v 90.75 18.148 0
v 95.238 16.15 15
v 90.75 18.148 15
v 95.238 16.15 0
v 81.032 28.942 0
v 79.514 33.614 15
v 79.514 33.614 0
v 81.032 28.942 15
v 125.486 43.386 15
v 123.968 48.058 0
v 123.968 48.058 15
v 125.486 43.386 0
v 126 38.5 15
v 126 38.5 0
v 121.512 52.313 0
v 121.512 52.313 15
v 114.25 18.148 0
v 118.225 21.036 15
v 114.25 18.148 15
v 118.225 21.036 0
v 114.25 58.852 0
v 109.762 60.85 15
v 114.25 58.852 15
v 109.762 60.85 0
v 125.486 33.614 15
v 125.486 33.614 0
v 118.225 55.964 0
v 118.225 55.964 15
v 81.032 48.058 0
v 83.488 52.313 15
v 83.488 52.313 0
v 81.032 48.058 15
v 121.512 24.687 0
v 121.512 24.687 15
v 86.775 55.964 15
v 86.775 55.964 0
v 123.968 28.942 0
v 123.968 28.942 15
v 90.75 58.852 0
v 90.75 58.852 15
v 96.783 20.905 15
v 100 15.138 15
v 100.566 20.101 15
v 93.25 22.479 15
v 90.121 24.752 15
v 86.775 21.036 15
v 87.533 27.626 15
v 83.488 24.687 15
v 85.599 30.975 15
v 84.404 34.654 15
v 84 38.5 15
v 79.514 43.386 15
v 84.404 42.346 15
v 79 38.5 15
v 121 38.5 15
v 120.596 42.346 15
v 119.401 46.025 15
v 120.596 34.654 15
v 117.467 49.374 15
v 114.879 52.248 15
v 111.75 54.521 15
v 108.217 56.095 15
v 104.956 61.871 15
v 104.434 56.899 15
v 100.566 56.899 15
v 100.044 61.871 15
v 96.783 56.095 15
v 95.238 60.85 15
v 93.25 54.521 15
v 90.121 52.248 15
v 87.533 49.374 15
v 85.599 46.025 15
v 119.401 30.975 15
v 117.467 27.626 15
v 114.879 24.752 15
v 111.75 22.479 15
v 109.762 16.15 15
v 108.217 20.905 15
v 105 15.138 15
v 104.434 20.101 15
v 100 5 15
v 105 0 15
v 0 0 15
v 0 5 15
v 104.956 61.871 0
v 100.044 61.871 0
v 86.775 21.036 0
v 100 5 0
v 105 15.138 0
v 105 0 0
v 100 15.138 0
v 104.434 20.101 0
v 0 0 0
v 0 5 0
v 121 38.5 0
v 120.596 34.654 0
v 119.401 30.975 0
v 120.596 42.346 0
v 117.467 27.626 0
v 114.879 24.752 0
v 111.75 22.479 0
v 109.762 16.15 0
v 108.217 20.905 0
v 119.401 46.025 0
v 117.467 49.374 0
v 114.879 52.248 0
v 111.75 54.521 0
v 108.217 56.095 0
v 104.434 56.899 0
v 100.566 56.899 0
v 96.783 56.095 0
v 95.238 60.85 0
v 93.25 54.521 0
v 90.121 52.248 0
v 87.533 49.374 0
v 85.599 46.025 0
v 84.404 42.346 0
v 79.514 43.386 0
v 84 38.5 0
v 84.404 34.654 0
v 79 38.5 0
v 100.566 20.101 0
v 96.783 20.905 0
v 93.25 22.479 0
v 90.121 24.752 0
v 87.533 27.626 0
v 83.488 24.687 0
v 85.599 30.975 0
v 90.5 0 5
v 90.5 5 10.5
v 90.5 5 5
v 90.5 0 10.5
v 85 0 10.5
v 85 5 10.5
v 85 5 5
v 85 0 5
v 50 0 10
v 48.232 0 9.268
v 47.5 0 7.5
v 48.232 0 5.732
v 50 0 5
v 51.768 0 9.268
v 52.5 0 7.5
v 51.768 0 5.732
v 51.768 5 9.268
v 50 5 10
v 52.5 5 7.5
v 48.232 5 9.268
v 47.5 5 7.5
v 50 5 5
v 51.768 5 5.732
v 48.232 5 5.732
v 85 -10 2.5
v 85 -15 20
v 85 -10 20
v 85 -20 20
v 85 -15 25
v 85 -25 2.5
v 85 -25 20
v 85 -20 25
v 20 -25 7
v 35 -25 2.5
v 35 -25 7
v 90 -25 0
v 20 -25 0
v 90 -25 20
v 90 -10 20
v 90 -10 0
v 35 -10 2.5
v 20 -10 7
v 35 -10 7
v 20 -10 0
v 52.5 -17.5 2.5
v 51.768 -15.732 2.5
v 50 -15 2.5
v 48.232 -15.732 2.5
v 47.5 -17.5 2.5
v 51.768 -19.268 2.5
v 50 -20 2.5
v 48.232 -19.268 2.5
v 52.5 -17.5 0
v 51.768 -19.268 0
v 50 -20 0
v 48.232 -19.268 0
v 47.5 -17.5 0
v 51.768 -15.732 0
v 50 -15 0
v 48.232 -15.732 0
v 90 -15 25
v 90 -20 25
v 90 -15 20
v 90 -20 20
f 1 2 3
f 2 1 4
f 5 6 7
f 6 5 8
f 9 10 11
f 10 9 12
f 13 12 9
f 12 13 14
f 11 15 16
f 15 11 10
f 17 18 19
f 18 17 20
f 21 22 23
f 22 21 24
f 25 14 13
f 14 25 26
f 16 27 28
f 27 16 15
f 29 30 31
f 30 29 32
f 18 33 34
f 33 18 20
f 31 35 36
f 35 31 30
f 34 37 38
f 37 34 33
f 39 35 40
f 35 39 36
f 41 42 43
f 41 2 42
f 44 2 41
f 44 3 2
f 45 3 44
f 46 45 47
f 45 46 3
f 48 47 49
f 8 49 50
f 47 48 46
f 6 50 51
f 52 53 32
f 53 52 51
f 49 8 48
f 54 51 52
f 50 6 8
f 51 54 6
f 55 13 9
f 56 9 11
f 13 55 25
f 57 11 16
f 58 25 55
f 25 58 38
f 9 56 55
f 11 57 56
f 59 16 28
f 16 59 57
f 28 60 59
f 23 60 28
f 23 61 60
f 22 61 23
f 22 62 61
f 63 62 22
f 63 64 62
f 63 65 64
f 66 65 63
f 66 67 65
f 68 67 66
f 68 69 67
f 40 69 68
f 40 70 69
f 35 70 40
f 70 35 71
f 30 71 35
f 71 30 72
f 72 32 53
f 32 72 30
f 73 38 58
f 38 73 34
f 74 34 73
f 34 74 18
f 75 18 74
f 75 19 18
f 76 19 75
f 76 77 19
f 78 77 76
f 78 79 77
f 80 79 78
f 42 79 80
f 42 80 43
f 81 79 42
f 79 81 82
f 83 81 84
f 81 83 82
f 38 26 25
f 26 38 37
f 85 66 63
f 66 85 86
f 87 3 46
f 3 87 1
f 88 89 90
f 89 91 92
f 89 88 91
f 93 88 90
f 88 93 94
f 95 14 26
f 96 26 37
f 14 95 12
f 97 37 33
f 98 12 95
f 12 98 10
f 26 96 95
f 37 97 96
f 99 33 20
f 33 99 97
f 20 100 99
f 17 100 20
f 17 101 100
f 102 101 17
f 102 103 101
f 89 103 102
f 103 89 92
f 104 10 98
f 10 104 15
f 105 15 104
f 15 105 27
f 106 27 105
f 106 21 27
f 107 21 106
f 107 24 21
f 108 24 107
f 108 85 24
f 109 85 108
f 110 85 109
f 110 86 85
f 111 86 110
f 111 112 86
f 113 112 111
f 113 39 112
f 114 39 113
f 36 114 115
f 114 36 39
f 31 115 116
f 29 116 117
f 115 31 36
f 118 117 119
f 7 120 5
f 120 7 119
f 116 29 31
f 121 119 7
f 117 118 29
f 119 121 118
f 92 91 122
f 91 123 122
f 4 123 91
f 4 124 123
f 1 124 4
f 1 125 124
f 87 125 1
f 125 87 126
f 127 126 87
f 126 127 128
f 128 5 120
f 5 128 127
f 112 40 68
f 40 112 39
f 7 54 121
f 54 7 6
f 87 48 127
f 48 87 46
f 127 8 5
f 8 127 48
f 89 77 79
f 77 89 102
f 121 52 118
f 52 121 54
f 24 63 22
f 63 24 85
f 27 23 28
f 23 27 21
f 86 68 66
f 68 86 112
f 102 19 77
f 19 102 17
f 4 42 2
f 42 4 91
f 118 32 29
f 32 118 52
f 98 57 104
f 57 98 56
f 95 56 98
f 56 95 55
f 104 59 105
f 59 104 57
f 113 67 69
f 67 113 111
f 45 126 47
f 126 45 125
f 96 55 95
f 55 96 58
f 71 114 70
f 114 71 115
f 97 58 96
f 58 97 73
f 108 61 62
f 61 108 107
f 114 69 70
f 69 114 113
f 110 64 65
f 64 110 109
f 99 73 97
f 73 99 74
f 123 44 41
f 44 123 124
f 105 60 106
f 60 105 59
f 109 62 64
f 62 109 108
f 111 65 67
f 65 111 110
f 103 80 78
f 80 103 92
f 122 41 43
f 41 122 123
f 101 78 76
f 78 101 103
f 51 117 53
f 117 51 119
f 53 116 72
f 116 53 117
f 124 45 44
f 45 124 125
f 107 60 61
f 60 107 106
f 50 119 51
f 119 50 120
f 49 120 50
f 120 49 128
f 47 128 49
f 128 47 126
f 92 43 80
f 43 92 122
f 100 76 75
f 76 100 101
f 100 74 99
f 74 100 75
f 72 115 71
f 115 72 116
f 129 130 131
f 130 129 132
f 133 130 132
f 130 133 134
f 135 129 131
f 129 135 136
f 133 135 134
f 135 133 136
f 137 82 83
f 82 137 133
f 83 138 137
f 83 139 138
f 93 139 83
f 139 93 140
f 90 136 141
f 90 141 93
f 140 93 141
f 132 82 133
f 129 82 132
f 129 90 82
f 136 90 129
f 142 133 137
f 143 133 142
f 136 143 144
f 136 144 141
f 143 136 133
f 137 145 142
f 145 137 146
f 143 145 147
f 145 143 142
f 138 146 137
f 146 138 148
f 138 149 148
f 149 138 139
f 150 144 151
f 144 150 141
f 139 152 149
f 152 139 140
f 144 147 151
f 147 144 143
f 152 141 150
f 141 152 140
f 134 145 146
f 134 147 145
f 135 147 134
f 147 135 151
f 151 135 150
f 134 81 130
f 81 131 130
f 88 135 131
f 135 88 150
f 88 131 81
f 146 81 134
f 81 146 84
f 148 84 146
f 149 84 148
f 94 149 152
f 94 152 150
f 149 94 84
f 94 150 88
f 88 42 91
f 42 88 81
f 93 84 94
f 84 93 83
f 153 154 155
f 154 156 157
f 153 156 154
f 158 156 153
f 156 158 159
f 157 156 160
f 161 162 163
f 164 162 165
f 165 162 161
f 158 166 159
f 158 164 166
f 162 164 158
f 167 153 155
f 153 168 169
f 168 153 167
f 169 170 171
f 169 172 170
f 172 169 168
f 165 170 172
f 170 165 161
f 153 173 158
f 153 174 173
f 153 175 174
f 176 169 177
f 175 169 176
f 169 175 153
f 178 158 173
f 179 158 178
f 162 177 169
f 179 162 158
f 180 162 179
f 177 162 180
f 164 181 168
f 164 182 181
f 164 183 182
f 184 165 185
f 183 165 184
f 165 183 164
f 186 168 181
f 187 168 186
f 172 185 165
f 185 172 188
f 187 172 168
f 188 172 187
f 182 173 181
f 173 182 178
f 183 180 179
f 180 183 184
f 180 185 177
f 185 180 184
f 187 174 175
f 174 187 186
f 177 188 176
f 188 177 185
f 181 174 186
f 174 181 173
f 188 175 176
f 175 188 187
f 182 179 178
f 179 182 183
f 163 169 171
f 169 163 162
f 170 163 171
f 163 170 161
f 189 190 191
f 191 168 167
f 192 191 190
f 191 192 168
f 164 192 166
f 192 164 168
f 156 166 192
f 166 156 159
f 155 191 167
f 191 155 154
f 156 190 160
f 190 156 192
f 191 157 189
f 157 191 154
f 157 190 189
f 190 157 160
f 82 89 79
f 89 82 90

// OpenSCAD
// Drzak teplomeru do plastoveho okna 
// Thermometer holder to plastic window
// need two same parts - top and bootom holder is identical
// vyska drzaku
hh1=15;
// vnitrni prumer drzaku teplomeru
dht = 37;
// sirka steny
hwidth = 5;
pwidth = 2.5;
// delka drzaku
lhold = 100;
// odsun kolecka od konce zakladu drzaku
lh2 = 20;
// posun operky od konce zakladu drzaku
lpos = 15;
// odsun diry pro sroubek - musi byt vic nez lh2
lh1 = 50;
// prumer diry pro sroubek
dsr = 5;
// zdvih druheho dilu
lh3 = 7;

translate([lhold+hwidth/2,lh2+dht/2,0])
   difference()
   {
    cylinder(h=hh1, r=(dht/2+hwidth));
    cylinder(h=hh1, r=dht/2);   
   }
difference()
  { 
   cube([lhold,hwidth,hh1]);
   union()
   {
    translate([lhold-lpos,0,hh1/2-hh1/6]) cube([hwidth*1.1,hwidth*1.1,(hh1/3)*1.1]);
    translate([lhold-lh1,hwidth,hh1/2]) rotate([90,0,0]) cylinder(h=hwidth,d=dsr);
   }   
  }
translate([lhold,0,0]) cube([hwidth,lh2,hh1]);  
  
// druhy dil
translate([0, -10, 0])
rotate([90,0,0]) {
 translate([20,0,0]) difference() {   
    cube([lhold-lpos-20,pwidth,hh1]);
    translate([lhold-lh1-20,pwidth,hh1/2]) rotate([90,0,0]) cylinder(h=pwidth,d=dsr);
    } 
 translate([20,0,0]) cube([6*pwidth,lh3,hh1]);     
 translate([lhold-lpos,0,0]) cube([hwidth,20,hh1]); 
 // zobacek pro zasazeni    
 translate([lhold-lpos,20,hh1/2-hh1/6]) cube([hwidth,hwidth,hh1/3]);   
}  
